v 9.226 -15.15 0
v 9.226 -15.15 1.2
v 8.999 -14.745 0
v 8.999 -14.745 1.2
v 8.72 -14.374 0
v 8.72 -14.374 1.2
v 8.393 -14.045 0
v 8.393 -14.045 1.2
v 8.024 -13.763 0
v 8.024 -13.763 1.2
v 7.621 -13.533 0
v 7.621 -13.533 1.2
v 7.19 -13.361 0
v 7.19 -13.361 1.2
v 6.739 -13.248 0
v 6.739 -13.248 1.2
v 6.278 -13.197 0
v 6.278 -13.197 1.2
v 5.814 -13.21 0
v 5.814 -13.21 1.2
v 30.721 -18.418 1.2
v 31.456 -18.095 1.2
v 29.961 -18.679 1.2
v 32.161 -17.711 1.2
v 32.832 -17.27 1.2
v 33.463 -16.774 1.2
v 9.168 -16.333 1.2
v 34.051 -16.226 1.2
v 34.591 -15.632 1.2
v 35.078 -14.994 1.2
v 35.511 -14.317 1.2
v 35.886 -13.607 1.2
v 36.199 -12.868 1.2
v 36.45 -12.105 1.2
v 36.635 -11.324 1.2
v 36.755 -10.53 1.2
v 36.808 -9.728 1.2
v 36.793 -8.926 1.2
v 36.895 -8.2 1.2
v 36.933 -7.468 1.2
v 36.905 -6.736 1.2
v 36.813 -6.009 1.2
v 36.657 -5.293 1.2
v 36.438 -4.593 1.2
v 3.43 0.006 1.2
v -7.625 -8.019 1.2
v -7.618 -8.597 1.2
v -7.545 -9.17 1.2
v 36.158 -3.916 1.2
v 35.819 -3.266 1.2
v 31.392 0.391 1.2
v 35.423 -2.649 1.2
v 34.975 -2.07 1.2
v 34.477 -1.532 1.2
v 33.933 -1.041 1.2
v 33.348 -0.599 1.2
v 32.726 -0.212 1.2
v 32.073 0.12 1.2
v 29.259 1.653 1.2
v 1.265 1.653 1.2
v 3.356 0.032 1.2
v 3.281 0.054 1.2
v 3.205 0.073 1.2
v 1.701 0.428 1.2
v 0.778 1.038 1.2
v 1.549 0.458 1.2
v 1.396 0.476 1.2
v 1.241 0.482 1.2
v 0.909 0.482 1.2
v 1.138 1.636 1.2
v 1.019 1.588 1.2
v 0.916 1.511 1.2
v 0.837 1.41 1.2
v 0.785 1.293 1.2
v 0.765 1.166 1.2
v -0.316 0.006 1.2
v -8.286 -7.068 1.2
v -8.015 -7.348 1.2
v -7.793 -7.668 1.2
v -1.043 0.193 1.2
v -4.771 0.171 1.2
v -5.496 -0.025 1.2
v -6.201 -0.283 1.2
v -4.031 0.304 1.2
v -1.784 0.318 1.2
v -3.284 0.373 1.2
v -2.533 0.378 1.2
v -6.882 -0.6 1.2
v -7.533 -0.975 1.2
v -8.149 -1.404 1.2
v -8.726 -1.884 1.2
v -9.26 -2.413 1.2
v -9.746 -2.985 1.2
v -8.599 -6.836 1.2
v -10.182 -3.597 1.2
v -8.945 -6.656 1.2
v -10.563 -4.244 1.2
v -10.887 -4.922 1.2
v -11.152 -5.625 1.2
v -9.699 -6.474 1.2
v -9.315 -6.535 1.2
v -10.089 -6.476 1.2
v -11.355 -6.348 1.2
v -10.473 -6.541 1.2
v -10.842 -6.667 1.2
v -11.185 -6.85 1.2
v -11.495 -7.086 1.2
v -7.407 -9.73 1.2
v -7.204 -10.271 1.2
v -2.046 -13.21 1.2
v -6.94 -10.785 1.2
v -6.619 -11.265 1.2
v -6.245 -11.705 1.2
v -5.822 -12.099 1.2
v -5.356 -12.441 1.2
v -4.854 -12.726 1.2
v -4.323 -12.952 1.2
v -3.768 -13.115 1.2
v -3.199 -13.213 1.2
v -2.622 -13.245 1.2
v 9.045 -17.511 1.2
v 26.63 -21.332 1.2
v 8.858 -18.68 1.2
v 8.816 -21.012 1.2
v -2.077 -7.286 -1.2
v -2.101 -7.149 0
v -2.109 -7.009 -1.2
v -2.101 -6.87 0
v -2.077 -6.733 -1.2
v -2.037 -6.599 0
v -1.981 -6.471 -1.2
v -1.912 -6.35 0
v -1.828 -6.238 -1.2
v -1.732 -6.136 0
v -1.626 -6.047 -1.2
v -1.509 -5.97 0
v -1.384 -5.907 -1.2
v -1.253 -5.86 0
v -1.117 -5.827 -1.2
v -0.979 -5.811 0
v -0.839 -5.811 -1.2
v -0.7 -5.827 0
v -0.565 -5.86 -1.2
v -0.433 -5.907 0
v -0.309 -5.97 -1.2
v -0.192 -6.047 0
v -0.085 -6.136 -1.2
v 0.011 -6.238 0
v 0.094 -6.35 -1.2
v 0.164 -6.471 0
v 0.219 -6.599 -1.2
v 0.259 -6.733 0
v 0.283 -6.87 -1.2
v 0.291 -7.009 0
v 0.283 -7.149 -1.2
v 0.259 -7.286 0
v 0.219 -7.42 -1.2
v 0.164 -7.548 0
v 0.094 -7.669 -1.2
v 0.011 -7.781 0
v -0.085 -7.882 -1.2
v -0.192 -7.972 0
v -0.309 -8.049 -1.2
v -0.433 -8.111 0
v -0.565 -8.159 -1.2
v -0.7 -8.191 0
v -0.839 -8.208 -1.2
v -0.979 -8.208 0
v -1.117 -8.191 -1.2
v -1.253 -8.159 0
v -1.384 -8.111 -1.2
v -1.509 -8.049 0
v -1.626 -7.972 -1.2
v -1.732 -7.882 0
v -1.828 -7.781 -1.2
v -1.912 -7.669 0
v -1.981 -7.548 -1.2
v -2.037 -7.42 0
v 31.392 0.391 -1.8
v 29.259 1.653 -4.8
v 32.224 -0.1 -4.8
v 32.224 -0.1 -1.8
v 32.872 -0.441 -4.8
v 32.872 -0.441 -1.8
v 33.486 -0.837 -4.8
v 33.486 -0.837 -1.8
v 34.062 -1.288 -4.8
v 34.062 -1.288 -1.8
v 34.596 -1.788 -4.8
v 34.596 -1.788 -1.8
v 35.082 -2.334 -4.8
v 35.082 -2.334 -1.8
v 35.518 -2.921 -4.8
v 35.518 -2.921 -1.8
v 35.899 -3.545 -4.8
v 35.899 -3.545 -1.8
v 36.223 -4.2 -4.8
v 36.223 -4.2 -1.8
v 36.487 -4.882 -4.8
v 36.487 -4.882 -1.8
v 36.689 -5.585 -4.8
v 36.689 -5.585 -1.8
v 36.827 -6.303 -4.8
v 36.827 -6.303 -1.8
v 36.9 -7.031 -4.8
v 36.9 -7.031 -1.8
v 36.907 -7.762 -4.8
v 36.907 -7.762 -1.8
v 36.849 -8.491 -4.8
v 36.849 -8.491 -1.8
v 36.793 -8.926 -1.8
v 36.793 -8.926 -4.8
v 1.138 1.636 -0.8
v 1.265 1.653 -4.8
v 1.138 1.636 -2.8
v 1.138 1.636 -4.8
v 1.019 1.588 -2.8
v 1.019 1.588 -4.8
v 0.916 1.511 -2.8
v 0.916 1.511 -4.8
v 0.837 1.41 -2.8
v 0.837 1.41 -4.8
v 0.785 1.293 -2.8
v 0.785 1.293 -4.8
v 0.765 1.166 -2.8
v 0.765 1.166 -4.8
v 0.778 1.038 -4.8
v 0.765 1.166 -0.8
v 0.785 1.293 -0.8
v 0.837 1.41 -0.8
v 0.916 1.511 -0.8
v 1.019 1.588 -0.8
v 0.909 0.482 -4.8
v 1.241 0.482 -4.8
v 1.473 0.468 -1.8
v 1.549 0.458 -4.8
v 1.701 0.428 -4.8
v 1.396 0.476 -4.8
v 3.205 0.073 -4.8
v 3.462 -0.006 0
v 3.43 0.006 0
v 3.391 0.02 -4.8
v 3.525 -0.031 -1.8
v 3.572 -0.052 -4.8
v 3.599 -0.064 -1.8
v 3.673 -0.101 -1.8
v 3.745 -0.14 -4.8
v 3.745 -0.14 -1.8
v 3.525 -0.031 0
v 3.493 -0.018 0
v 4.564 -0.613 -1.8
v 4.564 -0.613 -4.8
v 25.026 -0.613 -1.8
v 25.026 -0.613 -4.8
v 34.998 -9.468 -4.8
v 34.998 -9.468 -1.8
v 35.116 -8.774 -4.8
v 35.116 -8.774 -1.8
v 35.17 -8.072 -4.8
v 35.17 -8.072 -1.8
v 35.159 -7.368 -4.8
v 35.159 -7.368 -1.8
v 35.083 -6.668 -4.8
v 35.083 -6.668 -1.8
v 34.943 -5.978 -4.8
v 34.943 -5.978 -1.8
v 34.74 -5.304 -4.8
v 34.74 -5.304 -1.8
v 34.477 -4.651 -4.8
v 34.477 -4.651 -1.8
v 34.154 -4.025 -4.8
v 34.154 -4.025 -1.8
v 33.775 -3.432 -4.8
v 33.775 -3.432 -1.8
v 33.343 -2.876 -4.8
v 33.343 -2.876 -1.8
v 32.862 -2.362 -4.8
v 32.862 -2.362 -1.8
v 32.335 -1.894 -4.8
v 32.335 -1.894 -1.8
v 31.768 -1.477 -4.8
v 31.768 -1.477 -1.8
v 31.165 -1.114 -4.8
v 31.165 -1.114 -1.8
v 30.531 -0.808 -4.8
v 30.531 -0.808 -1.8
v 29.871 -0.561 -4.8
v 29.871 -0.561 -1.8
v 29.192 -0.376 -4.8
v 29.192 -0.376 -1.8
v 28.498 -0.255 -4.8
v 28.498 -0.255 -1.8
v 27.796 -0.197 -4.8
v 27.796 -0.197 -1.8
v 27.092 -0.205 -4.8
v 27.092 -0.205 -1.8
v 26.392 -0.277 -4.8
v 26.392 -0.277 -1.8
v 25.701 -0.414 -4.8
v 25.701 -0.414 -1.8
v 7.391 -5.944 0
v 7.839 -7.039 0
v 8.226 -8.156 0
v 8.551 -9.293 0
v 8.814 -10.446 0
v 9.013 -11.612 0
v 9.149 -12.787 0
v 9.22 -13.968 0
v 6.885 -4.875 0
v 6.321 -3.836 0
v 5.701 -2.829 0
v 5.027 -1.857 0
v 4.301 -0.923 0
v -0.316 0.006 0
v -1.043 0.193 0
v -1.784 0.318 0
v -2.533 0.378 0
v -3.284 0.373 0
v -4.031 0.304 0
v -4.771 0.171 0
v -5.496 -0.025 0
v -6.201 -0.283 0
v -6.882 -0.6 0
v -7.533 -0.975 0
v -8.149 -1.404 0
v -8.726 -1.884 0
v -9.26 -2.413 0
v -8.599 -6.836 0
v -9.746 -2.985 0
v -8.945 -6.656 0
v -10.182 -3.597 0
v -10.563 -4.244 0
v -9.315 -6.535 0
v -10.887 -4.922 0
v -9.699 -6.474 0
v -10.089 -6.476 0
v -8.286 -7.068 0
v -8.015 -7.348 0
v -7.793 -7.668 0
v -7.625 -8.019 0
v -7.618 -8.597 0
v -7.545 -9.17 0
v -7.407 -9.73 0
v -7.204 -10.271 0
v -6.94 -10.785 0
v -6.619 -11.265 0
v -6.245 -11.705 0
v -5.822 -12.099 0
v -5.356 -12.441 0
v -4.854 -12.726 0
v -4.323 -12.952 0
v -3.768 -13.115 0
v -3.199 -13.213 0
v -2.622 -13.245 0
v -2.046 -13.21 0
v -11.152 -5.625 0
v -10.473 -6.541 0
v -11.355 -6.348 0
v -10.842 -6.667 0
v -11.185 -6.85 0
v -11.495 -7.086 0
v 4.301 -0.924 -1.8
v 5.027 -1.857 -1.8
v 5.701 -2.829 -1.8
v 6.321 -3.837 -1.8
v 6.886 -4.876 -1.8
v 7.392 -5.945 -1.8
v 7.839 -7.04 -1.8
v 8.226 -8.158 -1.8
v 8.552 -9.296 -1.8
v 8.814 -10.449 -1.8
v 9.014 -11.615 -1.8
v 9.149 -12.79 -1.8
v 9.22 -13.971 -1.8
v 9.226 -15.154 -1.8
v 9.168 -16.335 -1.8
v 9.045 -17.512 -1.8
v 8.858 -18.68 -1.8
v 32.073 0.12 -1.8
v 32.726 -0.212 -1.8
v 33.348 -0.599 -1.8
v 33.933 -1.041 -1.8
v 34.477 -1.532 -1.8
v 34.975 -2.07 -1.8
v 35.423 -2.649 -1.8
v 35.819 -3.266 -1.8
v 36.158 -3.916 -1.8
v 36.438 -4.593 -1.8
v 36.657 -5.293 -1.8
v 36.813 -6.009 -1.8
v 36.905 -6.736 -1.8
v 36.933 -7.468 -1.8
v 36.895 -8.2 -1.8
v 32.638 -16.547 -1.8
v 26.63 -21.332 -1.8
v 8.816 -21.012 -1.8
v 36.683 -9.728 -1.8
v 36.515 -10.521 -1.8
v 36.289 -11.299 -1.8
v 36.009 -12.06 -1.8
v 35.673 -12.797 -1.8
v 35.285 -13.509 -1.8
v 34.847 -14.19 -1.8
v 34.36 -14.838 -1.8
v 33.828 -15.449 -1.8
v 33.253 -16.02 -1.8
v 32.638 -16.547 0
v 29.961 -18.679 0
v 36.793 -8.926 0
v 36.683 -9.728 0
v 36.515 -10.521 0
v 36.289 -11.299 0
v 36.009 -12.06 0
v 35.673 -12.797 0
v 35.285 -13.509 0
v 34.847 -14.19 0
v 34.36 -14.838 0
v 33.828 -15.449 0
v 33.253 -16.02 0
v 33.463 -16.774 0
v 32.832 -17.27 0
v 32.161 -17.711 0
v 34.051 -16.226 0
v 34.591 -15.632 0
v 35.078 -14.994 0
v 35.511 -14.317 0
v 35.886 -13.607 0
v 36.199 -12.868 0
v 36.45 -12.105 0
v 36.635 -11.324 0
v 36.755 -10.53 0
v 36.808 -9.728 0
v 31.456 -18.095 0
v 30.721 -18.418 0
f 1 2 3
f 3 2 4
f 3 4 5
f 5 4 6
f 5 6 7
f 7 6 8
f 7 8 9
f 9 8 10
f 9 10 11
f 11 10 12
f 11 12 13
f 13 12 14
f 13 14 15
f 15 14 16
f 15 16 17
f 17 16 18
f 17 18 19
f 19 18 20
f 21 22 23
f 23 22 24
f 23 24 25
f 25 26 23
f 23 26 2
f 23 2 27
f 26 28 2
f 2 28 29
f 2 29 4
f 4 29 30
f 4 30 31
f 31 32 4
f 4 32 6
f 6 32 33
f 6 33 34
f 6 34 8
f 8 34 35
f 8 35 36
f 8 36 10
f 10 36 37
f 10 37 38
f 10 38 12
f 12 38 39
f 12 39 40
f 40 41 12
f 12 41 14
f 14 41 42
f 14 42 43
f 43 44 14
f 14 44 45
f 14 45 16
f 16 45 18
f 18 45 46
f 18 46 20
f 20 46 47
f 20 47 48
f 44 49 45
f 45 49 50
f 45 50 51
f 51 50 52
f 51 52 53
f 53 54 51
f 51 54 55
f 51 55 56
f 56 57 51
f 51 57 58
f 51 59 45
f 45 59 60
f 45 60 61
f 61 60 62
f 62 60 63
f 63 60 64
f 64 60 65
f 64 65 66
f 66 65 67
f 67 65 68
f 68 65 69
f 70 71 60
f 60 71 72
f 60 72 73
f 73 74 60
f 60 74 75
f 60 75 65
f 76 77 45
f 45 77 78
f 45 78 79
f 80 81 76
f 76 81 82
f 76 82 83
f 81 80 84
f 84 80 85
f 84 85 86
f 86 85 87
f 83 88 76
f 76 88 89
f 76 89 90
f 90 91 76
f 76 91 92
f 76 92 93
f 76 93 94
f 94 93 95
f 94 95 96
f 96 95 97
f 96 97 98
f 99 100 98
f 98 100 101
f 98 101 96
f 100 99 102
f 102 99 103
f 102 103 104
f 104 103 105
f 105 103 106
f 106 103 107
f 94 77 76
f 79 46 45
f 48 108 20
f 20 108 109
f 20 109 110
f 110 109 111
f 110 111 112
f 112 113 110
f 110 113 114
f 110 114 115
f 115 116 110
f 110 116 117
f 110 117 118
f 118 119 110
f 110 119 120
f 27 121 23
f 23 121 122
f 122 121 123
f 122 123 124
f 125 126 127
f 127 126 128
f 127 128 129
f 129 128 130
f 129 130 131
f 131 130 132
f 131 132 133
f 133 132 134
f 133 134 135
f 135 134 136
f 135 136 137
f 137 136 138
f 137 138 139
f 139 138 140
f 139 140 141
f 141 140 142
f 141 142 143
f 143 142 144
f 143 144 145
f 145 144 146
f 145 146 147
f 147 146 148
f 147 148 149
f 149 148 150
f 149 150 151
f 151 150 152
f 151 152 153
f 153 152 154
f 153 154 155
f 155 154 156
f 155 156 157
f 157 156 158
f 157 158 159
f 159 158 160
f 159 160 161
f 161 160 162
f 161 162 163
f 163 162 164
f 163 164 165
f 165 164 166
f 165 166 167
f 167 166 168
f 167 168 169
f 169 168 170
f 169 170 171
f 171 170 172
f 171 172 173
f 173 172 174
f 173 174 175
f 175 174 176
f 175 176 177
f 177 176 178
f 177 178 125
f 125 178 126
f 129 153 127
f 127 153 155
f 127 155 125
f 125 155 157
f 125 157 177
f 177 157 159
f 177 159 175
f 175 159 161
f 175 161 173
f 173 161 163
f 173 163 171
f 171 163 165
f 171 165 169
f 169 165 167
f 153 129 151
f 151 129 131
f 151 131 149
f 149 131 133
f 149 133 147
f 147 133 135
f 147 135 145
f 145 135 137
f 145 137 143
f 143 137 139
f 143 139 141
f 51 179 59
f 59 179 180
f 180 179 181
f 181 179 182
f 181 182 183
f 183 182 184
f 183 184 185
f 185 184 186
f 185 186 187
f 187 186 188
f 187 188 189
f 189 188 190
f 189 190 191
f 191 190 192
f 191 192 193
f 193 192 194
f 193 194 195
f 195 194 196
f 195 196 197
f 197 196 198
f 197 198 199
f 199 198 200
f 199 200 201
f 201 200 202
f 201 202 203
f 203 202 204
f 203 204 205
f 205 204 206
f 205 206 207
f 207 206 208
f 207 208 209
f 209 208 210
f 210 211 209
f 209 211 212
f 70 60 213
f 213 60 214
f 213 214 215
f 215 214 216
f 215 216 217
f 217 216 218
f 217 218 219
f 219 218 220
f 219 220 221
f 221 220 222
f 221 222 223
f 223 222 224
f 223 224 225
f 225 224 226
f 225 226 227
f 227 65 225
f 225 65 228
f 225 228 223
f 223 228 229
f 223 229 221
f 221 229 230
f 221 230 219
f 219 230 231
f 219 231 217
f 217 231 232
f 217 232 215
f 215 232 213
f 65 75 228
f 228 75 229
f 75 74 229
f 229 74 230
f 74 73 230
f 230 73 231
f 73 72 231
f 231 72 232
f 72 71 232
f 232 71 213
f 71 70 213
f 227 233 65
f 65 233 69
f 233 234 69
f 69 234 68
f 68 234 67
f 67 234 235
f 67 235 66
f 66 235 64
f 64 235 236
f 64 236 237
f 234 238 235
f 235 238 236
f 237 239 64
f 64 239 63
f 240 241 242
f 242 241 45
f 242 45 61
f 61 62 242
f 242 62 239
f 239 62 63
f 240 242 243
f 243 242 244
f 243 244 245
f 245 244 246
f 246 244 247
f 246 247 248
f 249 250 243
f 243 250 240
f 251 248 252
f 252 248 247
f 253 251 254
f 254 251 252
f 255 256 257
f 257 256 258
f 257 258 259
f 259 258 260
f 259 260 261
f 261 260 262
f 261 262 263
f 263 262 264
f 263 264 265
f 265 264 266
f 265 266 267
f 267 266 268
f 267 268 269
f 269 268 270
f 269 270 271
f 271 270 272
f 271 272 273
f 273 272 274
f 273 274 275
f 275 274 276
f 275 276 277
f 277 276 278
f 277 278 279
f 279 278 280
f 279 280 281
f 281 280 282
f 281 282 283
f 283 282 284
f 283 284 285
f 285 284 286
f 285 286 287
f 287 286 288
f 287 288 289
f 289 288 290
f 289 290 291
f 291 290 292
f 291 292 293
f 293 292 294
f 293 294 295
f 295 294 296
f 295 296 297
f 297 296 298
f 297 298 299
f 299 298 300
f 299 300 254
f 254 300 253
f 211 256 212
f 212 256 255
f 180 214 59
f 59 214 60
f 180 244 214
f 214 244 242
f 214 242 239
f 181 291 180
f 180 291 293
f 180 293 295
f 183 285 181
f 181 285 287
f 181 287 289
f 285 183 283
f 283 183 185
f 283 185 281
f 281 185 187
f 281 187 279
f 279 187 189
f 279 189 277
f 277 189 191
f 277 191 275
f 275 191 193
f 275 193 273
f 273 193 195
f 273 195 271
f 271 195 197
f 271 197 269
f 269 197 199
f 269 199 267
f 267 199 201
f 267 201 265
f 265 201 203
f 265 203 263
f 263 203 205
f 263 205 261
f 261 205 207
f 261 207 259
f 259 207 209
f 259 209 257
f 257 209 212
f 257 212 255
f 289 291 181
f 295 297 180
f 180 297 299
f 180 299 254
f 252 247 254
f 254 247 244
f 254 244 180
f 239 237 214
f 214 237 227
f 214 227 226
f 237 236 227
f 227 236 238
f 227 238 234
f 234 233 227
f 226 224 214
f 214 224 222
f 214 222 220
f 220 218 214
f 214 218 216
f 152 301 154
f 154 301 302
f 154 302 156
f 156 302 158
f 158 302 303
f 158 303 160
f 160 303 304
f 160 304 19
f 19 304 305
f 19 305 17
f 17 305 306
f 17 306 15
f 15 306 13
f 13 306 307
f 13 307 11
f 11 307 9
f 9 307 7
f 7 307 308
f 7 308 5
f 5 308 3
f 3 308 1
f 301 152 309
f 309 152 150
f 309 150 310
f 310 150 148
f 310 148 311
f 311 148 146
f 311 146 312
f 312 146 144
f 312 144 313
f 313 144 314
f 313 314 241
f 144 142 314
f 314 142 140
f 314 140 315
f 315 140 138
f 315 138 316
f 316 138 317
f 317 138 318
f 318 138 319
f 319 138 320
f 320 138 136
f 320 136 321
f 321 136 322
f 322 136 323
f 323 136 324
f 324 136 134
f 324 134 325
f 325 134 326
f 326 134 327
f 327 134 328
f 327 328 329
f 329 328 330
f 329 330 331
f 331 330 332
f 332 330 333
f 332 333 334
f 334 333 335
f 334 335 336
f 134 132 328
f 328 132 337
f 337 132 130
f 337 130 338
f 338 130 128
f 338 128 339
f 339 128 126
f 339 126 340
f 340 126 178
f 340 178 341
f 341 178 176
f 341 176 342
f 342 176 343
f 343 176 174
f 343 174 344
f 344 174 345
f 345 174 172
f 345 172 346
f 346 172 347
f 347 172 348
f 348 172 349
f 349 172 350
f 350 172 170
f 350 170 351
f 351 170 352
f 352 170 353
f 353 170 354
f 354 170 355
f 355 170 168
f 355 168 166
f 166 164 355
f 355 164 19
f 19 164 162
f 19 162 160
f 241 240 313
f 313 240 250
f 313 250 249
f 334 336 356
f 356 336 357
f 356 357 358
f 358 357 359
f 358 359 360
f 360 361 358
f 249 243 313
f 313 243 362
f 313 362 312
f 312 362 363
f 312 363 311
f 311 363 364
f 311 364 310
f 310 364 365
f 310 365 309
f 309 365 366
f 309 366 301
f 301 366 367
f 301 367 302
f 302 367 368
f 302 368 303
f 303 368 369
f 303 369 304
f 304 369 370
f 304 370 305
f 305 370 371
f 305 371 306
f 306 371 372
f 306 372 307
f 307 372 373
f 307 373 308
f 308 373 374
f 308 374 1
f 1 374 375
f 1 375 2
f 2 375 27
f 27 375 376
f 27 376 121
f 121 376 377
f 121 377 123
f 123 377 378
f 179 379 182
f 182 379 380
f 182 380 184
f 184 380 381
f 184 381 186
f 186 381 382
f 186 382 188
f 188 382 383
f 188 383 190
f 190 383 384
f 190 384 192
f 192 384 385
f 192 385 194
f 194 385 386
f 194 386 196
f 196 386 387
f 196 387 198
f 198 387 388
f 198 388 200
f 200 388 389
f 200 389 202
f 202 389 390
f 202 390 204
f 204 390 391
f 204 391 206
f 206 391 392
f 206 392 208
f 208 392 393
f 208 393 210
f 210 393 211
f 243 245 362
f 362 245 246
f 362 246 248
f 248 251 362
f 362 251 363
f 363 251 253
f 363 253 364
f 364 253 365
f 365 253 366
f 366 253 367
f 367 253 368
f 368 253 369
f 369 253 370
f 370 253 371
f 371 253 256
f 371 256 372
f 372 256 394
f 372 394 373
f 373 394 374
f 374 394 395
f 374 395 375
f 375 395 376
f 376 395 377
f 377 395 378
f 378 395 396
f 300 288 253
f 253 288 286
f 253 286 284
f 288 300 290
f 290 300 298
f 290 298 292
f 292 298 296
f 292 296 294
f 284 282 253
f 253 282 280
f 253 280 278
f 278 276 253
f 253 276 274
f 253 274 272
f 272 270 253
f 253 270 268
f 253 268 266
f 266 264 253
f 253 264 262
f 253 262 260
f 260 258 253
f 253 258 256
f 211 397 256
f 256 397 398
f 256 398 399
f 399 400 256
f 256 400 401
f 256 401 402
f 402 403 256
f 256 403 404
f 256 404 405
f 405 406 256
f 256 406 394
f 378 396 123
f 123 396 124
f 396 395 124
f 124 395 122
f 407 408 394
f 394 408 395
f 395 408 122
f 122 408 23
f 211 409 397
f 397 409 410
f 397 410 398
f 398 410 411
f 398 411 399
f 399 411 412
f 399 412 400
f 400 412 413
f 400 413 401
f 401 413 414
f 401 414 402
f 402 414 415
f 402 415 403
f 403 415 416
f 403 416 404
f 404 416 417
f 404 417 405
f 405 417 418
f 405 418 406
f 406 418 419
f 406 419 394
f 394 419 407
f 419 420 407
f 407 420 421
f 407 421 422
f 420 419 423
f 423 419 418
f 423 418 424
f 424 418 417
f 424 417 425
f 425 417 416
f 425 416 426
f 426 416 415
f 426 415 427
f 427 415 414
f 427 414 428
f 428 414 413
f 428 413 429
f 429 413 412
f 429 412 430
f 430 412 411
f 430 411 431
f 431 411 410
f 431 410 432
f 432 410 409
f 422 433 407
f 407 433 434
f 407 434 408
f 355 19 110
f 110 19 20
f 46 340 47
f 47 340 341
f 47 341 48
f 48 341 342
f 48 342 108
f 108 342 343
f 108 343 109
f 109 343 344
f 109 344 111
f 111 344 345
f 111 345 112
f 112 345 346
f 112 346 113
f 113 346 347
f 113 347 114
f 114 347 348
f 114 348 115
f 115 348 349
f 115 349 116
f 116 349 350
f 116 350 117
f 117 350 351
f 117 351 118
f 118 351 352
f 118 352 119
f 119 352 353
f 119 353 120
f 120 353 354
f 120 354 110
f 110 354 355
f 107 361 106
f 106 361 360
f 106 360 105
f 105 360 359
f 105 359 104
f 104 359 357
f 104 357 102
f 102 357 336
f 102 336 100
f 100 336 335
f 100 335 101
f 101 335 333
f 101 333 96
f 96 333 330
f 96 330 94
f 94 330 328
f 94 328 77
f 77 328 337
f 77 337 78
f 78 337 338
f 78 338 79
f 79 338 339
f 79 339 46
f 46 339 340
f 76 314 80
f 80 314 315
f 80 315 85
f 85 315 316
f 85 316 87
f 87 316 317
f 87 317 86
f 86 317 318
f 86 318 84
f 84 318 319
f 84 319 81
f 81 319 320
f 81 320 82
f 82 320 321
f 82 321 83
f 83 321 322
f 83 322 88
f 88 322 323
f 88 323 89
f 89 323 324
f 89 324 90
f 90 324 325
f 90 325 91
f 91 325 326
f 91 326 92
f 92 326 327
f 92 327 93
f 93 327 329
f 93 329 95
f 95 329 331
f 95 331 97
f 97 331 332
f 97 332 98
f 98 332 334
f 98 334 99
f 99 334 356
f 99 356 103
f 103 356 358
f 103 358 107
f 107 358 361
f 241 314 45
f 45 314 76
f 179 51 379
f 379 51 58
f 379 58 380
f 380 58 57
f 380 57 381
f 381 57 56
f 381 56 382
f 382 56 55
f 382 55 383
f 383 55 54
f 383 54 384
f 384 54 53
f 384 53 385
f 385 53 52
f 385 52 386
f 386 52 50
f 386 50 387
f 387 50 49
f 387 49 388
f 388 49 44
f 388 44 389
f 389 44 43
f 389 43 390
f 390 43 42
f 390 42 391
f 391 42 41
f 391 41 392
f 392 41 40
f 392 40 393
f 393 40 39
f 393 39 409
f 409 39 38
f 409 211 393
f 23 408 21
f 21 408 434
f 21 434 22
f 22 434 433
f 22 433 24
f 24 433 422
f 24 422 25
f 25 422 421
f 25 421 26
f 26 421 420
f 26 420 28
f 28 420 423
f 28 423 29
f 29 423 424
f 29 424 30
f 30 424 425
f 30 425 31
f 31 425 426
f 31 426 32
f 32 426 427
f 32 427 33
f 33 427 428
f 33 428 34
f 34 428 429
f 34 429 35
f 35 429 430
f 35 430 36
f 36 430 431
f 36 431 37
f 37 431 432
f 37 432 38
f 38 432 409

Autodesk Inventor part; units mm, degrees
ref_plane "YZ Plane" through (0, 0, 0) normal (1, 0, 0) x (0, 1, 0)
ref_plane "XZ Plane" through (0, 0, 0) normal (0, 1, 0) x (-1, 0, 0)
ref_plane "XY Plane" through (0, 0, 0) normal (0, 0, 1) x (1, 0, 0)
sketch "Boceto1" plane through (0, 0, 0) normal (0, 0, 1) x (1, 0, 0)
  line L0 (26.0808, -19.0043) -> (25.4762, -18.9788)
  line L1 (8.8579, -18.68) -> (25.4762, -18.9788)
  line L2 (0, 0.0061) -> (25.0257, 0.0061)
  line L3 (0, 0.0061) -> (25.0257, 0.0061)
  line L4 (-1.5746, -5.9665) -> (-0.3149, -5.9665)
  circle A0 centre (-0.9088, -7.0094) radius 1.2002
  arc A1 (25.9493, -18.9873) -> (36.7928, -8.9256) centre (27.2383, -9.5026) ccw
  line L5 (5.8136, -13.2096) -> (-2.0458, -13.2096)
  arc A2 (8.8579, -18.68) -> (5.8136, -13.2096) centre (6.1366, -16.6121) ccw
  arc A3 (-7.6246, -8.019) -> (-2.0458, -13.2096) centre (-2.6389, -8.2538) ccw
  line L6 (-7.6246, -8.019) -> (-7.6206, -7.9467)
  arc A4 (-7.6246, -8.019) -> (-11.4954, -7.0855) centre (-9.8812, -8.8845) ccw
  arc A5 (-0.3158, 0.0061) -> (-11.4954, -7.0855) centre (-2.8556, -8.3478) ccw
  line L7 (-0.3158, 0.0061) -> (0, 0.0061)
  arc A6 (36.7928, -8.9256) -> (25.0257, 0.0061) centre (28.6695, -7.4106) ccw
extrude "Extrusión1" add sketch "Boceto1" along normal blind 1.2
sketch "Boceto2" plane through (0, 0, 0) normal (0, 0, -1) x (-1, 0, 0)
  arc A0 (-3.4903, 0.0061) -> (-8.8579, -18.68) centre (12.417, -14.6773) ccw
  line L0 (-3.4903, 0.0061) -> (-25.0257, 0.0061)
  arc A1 (-25.0257, 0.0061) -> (-36.7928, -8.9256) centre (-28.6695, -7.4106) ccw projected
  arc A2 (-25.0257, 0.0061) -> (-36.7928, -8.9256) centre (-28.6695, -7.4106) ccw
  arc A3 (-36.7928, -8.9256) -> (-32.6377, -16.5472) centre (-25.6771, -7.8089) ccw
  line L1 (-32.6377, -16.5472) -> (-26.6305, -21.3323)
  line L2 (-26.6305, -21.3323) -> (-8.816, -21.0119)
  line L3 (-8.816, -21.0119) -> (-8.8579, -18.68)
  point P0 (0, 0)
  point P1 (-25.4762, -18.9788)
  point P2 (-27.1681, -7.0263)
  point P3 (-11.7669, -7.0263)
extrude "Extrusión2" add sketch "Boceto2" along normal blind 1.8
sketch "Boceto3" plane through (0, 0, -1.8) normal (0, 0, -1) x (-1, 0, 0)
  arc A0 (-32.2242, -0.1005) -> (-36.8492, -8.491) centre (-28.759, -7.4805) ccw
  line L0 (-36.7928, -8.9256) -> (-34.9977, -9.4685)
  arc A1 (-25.0257, -0.6131) -> (-34.9977, -9.4685) centre (-27.5262, -7.8397) ccw
  line L1 (-25.0257, -0.6131) -> (-4.5645, -0.6131)
  line L2 (-4.5645, -0.6131) -> (-3.7445, -0.1404)
  line L3 (-3.2048, 0.0735) -> (-1.7006, 0.4283)
  line L4 (-1.901, 1.6527) -> (-29.2586, 1.6527)
  line L5 (-29.2586, 1.6527) -> (-33.0913, -0.6131)
  line L6 (-36.8492, -8.491) -> (-36.7928, -8.9256)
  line L7 (-1.2414, 0.4817) -> (-0.909, 0.4817)
  line L8 (-0.909, 0.4817) -> (-0.7783, 1.0384)
  line L9 (-1.265, 1.6527) -> (-3.3088, 1.6527)
  arc A2 (-3.2048, 0.0735) -> (-3.7445, -0.1404) centre (-2.7457, -1.8731) ccw
  arc A3 (-1.2414, 0.4817) -> (-1.7006, 0.4283) centre (-1.2414, -1.5183) ccw
  arc A4 (-0.7783, 1.0384) -> (-1.265, 1.6527) centre (-1.265, 1.1527) ccw
  point P0 (-3.4903, 0.0061)
  point P1 (-26.0808, -19.0043)
  point P2 (-8.8579, -18.68)
  point P3 (-1.4741, 0.4817)
  point P4 (-36.5961, -8.5348)
  point P5 (-33.0913, -0.6131)
  dimension "d15" = 2
  dimension "d16" = 0.5
extrude "Extrusión3" add sketch "Boceto3" along normal mid plane 6
sketch "Boceto4" plane through (0, 0, 0) normal (0, 0, -1) x (-1, 0, 0)
  circle A0 centre (0.9088, -7.0094) radius 1.2002 projected
  circle A1 centre (0.9088, -7.0094) radius 1.2002
  point P0 (0, 0)
extrude "Extrusión4" add sketch "Boceto4" along normal blind 1.2
sketch "Boceto5" plane through (-0.9088, -7.0094, 0) normal (0, 0, 1) x (1, 0, 0)
  circle A0 centre (0, 0) radius 1.2002 projected
  circle A1 centre (0, 0) radius 1.2002
  point P0 (0.9088, 7.0094)
extrude "Extrusión5" add sketch "Boceto5" along normal blind 1.2
sketch "Boceto13" plane through (0, 0, -1.8) normal (0, 0, -1) x (-1, 0, 0)
  arc A0 (-3.4903, 0.0061) -> (-8.8579, -18.68) centre (12.417, -14.6773) ccw
  line L0 (-3.4903, 0.0061) -> (-25.0257, 0.0061)
  arc A1 (-25.0257, 0.0061) -> (-36.7928, -8.9256) centre (-28.6695, -7.4106) ccw
  arc A2 (-25.0257, 0.0061) -> (-36.7928, -8.9256) centre (-28.6695, -7.4106) ccw
  arc A3 (-36.7928, -8.9256) -> (-32.6377, -16.5472) centre (-25.6771, -7.8089) ccw
  line L1 (-32.6377, -16.5472) -> (-26.6305, -21.3323)
  line L2 (-26.6305, -21.3323) -> (-8.816, -21.0119)
  line L3 (-8.816, -21.0119) -> (-8.8579, -18.68)
  point P0 (0, 0)
  point P1 (0, 0)
  point P2 (-25.4762, -18.9788)
  point P3 (-27.1681, -7.0263)
  point P4 (-11.7669, -7.0263)
extrude "Extrusión8" add sketch "Boceto13" against normal blind 3
properties part number "Pieza4_3DPrint"
